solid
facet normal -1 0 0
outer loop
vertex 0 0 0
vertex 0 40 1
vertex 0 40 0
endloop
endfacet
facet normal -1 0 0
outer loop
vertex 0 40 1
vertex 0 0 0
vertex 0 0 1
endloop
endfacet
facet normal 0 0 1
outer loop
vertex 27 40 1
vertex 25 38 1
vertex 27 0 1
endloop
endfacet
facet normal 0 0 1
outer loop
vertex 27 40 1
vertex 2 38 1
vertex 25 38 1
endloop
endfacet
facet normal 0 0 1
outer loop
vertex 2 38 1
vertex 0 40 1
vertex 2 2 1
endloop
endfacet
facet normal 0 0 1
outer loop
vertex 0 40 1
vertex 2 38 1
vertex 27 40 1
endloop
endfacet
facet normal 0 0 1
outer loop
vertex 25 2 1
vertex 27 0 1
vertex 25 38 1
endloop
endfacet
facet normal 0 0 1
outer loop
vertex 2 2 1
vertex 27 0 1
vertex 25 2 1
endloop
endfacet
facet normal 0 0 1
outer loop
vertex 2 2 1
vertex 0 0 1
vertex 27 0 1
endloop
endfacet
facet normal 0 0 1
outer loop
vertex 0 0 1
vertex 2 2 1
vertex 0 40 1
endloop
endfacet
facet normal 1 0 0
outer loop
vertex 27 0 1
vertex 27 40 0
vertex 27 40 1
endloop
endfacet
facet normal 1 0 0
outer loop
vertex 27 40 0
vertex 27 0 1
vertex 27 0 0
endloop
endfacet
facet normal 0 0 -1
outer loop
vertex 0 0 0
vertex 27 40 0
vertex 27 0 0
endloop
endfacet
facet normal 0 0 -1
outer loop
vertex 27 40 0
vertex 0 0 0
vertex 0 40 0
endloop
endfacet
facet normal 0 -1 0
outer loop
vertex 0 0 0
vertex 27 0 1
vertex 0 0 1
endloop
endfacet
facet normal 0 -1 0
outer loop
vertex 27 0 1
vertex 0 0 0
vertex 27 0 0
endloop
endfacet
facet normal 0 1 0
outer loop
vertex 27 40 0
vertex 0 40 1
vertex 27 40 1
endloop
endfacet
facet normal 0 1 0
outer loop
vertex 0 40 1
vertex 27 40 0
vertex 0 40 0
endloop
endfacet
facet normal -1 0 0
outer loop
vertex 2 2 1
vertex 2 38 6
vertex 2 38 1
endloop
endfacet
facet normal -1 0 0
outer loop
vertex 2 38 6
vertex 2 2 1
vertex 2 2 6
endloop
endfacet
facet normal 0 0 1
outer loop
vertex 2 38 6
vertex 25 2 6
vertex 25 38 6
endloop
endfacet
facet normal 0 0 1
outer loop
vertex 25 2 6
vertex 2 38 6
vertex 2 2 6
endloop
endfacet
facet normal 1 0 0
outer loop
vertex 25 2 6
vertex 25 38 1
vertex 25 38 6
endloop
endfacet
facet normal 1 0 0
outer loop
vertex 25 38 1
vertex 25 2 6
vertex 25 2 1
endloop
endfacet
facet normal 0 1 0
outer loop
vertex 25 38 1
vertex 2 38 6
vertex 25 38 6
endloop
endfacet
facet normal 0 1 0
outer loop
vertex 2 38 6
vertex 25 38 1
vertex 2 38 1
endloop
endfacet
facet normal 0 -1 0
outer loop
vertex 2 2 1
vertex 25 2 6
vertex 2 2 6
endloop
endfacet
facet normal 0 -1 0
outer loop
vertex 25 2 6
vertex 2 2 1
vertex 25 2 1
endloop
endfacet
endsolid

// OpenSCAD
cube([27, 40, 1]);
translate([2,2,1])
    cube([23, 36, 5]);
